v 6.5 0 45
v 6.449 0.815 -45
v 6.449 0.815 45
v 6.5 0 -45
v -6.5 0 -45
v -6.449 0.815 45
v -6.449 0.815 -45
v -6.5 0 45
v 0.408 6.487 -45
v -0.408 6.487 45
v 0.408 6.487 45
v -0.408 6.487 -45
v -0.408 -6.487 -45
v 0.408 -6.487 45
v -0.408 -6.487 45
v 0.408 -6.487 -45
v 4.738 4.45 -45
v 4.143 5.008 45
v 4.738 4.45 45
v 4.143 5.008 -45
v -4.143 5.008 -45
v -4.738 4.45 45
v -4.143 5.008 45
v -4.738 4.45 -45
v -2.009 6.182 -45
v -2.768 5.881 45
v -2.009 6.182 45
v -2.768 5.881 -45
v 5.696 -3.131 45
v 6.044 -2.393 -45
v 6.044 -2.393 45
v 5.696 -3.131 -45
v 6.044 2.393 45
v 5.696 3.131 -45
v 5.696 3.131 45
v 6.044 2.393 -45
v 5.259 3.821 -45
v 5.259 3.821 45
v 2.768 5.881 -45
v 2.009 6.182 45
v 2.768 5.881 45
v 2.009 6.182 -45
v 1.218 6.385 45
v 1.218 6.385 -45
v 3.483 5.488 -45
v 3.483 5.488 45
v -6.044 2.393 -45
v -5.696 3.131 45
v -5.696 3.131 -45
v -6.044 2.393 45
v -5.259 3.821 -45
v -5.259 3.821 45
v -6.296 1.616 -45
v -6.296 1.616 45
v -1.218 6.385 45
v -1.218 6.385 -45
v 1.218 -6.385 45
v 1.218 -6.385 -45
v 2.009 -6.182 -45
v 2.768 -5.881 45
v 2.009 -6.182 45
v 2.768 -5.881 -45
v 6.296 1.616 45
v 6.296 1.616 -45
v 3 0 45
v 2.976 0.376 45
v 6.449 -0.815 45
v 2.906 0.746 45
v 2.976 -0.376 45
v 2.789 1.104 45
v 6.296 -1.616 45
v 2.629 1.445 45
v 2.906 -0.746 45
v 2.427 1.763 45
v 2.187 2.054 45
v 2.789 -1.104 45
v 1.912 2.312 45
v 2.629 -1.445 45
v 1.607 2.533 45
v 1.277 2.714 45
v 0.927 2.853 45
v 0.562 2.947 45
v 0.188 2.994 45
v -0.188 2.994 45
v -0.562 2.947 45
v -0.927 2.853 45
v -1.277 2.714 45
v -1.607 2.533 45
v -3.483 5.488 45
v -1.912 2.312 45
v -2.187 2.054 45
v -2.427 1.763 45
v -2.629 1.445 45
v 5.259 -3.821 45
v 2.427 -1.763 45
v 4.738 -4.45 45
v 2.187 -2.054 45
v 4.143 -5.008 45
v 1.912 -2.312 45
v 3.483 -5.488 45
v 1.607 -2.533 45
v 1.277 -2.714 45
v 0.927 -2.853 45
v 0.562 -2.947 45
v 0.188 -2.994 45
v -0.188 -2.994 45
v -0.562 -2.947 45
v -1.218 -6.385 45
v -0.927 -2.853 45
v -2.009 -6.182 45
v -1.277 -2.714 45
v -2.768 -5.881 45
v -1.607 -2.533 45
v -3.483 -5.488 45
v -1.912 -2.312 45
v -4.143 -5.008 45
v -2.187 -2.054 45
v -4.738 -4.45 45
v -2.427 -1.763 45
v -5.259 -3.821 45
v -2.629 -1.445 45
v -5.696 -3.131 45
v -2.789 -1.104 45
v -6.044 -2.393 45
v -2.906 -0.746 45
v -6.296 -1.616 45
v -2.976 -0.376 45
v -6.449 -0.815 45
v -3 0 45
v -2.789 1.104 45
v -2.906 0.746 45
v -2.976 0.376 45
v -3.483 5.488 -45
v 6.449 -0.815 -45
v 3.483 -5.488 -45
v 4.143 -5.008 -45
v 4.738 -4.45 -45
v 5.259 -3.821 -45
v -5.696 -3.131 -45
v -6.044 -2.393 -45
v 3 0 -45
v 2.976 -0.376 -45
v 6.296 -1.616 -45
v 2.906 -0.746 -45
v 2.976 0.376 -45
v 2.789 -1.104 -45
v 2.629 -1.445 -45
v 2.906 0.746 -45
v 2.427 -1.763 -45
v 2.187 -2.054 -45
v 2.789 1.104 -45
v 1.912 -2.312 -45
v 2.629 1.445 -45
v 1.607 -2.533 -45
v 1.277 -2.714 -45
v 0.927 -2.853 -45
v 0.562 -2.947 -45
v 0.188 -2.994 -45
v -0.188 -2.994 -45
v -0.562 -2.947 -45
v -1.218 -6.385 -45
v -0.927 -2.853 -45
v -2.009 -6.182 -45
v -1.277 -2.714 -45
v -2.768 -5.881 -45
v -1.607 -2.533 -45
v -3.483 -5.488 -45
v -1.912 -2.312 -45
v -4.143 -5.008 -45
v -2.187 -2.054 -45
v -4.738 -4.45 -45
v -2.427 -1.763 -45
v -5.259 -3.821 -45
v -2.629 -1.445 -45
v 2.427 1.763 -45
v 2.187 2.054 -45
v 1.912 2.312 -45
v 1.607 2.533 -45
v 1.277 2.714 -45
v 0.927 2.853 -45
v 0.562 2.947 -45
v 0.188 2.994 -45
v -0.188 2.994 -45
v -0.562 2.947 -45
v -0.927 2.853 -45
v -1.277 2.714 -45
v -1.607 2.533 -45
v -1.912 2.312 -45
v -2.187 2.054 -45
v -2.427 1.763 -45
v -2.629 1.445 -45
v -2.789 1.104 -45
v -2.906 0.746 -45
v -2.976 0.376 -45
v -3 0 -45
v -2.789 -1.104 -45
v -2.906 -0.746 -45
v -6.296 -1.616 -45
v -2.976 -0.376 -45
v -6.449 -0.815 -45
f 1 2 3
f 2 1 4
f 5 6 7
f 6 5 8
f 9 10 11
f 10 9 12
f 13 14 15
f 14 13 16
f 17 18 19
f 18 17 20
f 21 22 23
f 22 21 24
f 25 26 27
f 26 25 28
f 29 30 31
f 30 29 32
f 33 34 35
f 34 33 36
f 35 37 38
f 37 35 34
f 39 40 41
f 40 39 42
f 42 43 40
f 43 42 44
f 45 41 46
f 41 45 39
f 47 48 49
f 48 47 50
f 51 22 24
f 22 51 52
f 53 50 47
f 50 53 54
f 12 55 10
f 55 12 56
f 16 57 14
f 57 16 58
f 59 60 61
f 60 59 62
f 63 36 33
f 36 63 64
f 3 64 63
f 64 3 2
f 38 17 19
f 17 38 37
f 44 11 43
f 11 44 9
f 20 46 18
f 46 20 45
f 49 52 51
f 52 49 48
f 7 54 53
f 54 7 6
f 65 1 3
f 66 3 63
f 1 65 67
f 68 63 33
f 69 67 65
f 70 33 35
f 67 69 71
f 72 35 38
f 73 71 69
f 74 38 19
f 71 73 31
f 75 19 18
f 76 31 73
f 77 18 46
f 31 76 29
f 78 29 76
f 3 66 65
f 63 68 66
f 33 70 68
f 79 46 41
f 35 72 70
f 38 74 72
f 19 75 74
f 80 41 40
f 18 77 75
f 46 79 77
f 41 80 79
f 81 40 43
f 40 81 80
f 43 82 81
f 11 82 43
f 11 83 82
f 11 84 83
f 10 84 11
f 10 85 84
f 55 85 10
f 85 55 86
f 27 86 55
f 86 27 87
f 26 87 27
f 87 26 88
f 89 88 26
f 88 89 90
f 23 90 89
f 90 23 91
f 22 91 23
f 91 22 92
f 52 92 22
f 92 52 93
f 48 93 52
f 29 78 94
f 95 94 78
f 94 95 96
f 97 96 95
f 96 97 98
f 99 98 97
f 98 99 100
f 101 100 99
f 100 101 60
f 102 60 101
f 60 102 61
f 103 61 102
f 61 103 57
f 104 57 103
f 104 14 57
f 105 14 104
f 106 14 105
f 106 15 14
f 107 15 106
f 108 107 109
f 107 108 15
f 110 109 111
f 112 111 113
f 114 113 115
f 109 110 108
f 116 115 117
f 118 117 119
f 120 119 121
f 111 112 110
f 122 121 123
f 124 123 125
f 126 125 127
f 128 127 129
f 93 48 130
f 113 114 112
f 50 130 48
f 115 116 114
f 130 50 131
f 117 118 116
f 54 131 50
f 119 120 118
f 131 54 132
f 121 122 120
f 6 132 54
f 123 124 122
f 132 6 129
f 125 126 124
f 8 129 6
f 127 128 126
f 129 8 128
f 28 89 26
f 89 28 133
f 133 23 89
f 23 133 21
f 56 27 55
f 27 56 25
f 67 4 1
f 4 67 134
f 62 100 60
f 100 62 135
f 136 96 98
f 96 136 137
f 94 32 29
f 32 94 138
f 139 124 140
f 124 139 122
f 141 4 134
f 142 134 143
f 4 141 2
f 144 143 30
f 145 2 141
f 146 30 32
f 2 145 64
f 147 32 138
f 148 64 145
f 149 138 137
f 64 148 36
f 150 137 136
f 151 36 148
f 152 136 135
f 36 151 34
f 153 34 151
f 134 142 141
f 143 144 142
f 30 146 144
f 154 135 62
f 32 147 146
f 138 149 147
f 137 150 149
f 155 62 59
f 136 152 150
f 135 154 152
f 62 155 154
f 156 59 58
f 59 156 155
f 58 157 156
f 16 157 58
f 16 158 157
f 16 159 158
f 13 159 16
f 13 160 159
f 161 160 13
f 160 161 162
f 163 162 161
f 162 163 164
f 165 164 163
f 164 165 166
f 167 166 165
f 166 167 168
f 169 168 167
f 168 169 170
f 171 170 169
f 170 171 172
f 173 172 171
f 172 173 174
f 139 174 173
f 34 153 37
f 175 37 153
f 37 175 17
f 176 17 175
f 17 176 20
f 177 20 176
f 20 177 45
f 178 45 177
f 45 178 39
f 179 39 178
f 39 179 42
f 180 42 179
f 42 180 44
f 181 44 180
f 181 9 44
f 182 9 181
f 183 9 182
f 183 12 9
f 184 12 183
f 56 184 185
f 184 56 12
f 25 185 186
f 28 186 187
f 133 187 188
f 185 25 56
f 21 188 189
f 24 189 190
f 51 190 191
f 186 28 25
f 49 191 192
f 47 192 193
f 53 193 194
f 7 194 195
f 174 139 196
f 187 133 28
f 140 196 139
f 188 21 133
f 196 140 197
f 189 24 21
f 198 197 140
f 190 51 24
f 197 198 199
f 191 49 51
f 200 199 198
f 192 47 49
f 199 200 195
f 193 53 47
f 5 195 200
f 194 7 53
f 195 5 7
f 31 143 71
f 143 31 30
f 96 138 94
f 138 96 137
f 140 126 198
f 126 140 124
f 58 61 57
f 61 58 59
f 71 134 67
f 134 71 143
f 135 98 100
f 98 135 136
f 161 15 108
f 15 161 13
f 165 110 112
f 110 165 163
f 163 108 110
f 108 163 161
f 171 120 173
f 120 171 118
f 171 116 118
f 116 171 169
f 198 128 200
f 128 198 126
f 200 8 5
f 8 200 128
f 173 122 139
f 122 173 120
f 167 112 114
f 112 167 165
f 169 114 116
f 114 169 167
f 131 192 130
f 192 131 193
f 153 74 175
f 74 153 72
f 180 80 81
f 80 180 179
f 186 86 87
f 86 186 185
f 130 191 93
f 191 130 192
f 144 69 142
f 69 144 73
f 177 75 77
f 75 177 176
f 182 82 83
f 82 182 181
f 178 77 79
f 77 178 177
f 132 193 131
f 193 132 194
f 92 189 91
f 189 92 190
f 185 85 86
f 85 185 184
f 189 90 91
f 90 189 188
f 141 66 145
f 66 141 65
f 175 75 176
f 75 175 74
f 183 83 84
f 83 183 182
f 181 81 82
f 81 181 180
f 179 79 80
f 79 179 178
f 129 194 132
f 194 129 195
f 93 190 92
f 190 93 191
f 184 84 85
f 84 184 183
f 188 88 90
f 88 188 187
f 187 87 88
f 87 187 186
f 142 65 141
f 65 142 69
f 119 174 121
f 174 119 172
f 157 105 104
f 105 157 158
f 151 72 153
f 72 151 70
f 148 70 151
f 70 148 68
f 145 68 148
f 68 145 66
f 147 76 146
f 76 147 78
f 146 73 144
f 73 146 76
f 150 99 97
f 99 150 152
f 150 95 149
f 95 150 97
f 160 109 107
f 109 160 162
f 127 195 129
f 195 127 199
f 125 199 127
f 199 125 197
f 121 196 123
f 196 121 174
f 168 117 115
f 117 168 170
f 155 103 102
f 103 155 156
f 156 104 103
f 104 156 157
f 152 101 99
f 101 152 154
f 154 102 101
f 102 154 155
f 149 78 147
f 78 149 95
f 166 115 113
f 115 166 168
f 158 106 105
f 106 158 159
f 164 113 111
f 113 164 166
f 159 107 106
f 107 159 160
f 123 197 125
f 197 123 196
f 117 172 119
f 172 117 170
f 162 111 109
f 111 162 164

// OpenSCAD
$fn = 50;


difference() {
	union() {
		translate(v = [0, 0, -45.0000000000]) {
			cylinder(h = 90, r = 6.5000000000);
		}
	}
	union() {
		translate(v = [0, 0, -100.0000000000]) {
			cylinder(h = 200, r = 3);
		}
	}
}
